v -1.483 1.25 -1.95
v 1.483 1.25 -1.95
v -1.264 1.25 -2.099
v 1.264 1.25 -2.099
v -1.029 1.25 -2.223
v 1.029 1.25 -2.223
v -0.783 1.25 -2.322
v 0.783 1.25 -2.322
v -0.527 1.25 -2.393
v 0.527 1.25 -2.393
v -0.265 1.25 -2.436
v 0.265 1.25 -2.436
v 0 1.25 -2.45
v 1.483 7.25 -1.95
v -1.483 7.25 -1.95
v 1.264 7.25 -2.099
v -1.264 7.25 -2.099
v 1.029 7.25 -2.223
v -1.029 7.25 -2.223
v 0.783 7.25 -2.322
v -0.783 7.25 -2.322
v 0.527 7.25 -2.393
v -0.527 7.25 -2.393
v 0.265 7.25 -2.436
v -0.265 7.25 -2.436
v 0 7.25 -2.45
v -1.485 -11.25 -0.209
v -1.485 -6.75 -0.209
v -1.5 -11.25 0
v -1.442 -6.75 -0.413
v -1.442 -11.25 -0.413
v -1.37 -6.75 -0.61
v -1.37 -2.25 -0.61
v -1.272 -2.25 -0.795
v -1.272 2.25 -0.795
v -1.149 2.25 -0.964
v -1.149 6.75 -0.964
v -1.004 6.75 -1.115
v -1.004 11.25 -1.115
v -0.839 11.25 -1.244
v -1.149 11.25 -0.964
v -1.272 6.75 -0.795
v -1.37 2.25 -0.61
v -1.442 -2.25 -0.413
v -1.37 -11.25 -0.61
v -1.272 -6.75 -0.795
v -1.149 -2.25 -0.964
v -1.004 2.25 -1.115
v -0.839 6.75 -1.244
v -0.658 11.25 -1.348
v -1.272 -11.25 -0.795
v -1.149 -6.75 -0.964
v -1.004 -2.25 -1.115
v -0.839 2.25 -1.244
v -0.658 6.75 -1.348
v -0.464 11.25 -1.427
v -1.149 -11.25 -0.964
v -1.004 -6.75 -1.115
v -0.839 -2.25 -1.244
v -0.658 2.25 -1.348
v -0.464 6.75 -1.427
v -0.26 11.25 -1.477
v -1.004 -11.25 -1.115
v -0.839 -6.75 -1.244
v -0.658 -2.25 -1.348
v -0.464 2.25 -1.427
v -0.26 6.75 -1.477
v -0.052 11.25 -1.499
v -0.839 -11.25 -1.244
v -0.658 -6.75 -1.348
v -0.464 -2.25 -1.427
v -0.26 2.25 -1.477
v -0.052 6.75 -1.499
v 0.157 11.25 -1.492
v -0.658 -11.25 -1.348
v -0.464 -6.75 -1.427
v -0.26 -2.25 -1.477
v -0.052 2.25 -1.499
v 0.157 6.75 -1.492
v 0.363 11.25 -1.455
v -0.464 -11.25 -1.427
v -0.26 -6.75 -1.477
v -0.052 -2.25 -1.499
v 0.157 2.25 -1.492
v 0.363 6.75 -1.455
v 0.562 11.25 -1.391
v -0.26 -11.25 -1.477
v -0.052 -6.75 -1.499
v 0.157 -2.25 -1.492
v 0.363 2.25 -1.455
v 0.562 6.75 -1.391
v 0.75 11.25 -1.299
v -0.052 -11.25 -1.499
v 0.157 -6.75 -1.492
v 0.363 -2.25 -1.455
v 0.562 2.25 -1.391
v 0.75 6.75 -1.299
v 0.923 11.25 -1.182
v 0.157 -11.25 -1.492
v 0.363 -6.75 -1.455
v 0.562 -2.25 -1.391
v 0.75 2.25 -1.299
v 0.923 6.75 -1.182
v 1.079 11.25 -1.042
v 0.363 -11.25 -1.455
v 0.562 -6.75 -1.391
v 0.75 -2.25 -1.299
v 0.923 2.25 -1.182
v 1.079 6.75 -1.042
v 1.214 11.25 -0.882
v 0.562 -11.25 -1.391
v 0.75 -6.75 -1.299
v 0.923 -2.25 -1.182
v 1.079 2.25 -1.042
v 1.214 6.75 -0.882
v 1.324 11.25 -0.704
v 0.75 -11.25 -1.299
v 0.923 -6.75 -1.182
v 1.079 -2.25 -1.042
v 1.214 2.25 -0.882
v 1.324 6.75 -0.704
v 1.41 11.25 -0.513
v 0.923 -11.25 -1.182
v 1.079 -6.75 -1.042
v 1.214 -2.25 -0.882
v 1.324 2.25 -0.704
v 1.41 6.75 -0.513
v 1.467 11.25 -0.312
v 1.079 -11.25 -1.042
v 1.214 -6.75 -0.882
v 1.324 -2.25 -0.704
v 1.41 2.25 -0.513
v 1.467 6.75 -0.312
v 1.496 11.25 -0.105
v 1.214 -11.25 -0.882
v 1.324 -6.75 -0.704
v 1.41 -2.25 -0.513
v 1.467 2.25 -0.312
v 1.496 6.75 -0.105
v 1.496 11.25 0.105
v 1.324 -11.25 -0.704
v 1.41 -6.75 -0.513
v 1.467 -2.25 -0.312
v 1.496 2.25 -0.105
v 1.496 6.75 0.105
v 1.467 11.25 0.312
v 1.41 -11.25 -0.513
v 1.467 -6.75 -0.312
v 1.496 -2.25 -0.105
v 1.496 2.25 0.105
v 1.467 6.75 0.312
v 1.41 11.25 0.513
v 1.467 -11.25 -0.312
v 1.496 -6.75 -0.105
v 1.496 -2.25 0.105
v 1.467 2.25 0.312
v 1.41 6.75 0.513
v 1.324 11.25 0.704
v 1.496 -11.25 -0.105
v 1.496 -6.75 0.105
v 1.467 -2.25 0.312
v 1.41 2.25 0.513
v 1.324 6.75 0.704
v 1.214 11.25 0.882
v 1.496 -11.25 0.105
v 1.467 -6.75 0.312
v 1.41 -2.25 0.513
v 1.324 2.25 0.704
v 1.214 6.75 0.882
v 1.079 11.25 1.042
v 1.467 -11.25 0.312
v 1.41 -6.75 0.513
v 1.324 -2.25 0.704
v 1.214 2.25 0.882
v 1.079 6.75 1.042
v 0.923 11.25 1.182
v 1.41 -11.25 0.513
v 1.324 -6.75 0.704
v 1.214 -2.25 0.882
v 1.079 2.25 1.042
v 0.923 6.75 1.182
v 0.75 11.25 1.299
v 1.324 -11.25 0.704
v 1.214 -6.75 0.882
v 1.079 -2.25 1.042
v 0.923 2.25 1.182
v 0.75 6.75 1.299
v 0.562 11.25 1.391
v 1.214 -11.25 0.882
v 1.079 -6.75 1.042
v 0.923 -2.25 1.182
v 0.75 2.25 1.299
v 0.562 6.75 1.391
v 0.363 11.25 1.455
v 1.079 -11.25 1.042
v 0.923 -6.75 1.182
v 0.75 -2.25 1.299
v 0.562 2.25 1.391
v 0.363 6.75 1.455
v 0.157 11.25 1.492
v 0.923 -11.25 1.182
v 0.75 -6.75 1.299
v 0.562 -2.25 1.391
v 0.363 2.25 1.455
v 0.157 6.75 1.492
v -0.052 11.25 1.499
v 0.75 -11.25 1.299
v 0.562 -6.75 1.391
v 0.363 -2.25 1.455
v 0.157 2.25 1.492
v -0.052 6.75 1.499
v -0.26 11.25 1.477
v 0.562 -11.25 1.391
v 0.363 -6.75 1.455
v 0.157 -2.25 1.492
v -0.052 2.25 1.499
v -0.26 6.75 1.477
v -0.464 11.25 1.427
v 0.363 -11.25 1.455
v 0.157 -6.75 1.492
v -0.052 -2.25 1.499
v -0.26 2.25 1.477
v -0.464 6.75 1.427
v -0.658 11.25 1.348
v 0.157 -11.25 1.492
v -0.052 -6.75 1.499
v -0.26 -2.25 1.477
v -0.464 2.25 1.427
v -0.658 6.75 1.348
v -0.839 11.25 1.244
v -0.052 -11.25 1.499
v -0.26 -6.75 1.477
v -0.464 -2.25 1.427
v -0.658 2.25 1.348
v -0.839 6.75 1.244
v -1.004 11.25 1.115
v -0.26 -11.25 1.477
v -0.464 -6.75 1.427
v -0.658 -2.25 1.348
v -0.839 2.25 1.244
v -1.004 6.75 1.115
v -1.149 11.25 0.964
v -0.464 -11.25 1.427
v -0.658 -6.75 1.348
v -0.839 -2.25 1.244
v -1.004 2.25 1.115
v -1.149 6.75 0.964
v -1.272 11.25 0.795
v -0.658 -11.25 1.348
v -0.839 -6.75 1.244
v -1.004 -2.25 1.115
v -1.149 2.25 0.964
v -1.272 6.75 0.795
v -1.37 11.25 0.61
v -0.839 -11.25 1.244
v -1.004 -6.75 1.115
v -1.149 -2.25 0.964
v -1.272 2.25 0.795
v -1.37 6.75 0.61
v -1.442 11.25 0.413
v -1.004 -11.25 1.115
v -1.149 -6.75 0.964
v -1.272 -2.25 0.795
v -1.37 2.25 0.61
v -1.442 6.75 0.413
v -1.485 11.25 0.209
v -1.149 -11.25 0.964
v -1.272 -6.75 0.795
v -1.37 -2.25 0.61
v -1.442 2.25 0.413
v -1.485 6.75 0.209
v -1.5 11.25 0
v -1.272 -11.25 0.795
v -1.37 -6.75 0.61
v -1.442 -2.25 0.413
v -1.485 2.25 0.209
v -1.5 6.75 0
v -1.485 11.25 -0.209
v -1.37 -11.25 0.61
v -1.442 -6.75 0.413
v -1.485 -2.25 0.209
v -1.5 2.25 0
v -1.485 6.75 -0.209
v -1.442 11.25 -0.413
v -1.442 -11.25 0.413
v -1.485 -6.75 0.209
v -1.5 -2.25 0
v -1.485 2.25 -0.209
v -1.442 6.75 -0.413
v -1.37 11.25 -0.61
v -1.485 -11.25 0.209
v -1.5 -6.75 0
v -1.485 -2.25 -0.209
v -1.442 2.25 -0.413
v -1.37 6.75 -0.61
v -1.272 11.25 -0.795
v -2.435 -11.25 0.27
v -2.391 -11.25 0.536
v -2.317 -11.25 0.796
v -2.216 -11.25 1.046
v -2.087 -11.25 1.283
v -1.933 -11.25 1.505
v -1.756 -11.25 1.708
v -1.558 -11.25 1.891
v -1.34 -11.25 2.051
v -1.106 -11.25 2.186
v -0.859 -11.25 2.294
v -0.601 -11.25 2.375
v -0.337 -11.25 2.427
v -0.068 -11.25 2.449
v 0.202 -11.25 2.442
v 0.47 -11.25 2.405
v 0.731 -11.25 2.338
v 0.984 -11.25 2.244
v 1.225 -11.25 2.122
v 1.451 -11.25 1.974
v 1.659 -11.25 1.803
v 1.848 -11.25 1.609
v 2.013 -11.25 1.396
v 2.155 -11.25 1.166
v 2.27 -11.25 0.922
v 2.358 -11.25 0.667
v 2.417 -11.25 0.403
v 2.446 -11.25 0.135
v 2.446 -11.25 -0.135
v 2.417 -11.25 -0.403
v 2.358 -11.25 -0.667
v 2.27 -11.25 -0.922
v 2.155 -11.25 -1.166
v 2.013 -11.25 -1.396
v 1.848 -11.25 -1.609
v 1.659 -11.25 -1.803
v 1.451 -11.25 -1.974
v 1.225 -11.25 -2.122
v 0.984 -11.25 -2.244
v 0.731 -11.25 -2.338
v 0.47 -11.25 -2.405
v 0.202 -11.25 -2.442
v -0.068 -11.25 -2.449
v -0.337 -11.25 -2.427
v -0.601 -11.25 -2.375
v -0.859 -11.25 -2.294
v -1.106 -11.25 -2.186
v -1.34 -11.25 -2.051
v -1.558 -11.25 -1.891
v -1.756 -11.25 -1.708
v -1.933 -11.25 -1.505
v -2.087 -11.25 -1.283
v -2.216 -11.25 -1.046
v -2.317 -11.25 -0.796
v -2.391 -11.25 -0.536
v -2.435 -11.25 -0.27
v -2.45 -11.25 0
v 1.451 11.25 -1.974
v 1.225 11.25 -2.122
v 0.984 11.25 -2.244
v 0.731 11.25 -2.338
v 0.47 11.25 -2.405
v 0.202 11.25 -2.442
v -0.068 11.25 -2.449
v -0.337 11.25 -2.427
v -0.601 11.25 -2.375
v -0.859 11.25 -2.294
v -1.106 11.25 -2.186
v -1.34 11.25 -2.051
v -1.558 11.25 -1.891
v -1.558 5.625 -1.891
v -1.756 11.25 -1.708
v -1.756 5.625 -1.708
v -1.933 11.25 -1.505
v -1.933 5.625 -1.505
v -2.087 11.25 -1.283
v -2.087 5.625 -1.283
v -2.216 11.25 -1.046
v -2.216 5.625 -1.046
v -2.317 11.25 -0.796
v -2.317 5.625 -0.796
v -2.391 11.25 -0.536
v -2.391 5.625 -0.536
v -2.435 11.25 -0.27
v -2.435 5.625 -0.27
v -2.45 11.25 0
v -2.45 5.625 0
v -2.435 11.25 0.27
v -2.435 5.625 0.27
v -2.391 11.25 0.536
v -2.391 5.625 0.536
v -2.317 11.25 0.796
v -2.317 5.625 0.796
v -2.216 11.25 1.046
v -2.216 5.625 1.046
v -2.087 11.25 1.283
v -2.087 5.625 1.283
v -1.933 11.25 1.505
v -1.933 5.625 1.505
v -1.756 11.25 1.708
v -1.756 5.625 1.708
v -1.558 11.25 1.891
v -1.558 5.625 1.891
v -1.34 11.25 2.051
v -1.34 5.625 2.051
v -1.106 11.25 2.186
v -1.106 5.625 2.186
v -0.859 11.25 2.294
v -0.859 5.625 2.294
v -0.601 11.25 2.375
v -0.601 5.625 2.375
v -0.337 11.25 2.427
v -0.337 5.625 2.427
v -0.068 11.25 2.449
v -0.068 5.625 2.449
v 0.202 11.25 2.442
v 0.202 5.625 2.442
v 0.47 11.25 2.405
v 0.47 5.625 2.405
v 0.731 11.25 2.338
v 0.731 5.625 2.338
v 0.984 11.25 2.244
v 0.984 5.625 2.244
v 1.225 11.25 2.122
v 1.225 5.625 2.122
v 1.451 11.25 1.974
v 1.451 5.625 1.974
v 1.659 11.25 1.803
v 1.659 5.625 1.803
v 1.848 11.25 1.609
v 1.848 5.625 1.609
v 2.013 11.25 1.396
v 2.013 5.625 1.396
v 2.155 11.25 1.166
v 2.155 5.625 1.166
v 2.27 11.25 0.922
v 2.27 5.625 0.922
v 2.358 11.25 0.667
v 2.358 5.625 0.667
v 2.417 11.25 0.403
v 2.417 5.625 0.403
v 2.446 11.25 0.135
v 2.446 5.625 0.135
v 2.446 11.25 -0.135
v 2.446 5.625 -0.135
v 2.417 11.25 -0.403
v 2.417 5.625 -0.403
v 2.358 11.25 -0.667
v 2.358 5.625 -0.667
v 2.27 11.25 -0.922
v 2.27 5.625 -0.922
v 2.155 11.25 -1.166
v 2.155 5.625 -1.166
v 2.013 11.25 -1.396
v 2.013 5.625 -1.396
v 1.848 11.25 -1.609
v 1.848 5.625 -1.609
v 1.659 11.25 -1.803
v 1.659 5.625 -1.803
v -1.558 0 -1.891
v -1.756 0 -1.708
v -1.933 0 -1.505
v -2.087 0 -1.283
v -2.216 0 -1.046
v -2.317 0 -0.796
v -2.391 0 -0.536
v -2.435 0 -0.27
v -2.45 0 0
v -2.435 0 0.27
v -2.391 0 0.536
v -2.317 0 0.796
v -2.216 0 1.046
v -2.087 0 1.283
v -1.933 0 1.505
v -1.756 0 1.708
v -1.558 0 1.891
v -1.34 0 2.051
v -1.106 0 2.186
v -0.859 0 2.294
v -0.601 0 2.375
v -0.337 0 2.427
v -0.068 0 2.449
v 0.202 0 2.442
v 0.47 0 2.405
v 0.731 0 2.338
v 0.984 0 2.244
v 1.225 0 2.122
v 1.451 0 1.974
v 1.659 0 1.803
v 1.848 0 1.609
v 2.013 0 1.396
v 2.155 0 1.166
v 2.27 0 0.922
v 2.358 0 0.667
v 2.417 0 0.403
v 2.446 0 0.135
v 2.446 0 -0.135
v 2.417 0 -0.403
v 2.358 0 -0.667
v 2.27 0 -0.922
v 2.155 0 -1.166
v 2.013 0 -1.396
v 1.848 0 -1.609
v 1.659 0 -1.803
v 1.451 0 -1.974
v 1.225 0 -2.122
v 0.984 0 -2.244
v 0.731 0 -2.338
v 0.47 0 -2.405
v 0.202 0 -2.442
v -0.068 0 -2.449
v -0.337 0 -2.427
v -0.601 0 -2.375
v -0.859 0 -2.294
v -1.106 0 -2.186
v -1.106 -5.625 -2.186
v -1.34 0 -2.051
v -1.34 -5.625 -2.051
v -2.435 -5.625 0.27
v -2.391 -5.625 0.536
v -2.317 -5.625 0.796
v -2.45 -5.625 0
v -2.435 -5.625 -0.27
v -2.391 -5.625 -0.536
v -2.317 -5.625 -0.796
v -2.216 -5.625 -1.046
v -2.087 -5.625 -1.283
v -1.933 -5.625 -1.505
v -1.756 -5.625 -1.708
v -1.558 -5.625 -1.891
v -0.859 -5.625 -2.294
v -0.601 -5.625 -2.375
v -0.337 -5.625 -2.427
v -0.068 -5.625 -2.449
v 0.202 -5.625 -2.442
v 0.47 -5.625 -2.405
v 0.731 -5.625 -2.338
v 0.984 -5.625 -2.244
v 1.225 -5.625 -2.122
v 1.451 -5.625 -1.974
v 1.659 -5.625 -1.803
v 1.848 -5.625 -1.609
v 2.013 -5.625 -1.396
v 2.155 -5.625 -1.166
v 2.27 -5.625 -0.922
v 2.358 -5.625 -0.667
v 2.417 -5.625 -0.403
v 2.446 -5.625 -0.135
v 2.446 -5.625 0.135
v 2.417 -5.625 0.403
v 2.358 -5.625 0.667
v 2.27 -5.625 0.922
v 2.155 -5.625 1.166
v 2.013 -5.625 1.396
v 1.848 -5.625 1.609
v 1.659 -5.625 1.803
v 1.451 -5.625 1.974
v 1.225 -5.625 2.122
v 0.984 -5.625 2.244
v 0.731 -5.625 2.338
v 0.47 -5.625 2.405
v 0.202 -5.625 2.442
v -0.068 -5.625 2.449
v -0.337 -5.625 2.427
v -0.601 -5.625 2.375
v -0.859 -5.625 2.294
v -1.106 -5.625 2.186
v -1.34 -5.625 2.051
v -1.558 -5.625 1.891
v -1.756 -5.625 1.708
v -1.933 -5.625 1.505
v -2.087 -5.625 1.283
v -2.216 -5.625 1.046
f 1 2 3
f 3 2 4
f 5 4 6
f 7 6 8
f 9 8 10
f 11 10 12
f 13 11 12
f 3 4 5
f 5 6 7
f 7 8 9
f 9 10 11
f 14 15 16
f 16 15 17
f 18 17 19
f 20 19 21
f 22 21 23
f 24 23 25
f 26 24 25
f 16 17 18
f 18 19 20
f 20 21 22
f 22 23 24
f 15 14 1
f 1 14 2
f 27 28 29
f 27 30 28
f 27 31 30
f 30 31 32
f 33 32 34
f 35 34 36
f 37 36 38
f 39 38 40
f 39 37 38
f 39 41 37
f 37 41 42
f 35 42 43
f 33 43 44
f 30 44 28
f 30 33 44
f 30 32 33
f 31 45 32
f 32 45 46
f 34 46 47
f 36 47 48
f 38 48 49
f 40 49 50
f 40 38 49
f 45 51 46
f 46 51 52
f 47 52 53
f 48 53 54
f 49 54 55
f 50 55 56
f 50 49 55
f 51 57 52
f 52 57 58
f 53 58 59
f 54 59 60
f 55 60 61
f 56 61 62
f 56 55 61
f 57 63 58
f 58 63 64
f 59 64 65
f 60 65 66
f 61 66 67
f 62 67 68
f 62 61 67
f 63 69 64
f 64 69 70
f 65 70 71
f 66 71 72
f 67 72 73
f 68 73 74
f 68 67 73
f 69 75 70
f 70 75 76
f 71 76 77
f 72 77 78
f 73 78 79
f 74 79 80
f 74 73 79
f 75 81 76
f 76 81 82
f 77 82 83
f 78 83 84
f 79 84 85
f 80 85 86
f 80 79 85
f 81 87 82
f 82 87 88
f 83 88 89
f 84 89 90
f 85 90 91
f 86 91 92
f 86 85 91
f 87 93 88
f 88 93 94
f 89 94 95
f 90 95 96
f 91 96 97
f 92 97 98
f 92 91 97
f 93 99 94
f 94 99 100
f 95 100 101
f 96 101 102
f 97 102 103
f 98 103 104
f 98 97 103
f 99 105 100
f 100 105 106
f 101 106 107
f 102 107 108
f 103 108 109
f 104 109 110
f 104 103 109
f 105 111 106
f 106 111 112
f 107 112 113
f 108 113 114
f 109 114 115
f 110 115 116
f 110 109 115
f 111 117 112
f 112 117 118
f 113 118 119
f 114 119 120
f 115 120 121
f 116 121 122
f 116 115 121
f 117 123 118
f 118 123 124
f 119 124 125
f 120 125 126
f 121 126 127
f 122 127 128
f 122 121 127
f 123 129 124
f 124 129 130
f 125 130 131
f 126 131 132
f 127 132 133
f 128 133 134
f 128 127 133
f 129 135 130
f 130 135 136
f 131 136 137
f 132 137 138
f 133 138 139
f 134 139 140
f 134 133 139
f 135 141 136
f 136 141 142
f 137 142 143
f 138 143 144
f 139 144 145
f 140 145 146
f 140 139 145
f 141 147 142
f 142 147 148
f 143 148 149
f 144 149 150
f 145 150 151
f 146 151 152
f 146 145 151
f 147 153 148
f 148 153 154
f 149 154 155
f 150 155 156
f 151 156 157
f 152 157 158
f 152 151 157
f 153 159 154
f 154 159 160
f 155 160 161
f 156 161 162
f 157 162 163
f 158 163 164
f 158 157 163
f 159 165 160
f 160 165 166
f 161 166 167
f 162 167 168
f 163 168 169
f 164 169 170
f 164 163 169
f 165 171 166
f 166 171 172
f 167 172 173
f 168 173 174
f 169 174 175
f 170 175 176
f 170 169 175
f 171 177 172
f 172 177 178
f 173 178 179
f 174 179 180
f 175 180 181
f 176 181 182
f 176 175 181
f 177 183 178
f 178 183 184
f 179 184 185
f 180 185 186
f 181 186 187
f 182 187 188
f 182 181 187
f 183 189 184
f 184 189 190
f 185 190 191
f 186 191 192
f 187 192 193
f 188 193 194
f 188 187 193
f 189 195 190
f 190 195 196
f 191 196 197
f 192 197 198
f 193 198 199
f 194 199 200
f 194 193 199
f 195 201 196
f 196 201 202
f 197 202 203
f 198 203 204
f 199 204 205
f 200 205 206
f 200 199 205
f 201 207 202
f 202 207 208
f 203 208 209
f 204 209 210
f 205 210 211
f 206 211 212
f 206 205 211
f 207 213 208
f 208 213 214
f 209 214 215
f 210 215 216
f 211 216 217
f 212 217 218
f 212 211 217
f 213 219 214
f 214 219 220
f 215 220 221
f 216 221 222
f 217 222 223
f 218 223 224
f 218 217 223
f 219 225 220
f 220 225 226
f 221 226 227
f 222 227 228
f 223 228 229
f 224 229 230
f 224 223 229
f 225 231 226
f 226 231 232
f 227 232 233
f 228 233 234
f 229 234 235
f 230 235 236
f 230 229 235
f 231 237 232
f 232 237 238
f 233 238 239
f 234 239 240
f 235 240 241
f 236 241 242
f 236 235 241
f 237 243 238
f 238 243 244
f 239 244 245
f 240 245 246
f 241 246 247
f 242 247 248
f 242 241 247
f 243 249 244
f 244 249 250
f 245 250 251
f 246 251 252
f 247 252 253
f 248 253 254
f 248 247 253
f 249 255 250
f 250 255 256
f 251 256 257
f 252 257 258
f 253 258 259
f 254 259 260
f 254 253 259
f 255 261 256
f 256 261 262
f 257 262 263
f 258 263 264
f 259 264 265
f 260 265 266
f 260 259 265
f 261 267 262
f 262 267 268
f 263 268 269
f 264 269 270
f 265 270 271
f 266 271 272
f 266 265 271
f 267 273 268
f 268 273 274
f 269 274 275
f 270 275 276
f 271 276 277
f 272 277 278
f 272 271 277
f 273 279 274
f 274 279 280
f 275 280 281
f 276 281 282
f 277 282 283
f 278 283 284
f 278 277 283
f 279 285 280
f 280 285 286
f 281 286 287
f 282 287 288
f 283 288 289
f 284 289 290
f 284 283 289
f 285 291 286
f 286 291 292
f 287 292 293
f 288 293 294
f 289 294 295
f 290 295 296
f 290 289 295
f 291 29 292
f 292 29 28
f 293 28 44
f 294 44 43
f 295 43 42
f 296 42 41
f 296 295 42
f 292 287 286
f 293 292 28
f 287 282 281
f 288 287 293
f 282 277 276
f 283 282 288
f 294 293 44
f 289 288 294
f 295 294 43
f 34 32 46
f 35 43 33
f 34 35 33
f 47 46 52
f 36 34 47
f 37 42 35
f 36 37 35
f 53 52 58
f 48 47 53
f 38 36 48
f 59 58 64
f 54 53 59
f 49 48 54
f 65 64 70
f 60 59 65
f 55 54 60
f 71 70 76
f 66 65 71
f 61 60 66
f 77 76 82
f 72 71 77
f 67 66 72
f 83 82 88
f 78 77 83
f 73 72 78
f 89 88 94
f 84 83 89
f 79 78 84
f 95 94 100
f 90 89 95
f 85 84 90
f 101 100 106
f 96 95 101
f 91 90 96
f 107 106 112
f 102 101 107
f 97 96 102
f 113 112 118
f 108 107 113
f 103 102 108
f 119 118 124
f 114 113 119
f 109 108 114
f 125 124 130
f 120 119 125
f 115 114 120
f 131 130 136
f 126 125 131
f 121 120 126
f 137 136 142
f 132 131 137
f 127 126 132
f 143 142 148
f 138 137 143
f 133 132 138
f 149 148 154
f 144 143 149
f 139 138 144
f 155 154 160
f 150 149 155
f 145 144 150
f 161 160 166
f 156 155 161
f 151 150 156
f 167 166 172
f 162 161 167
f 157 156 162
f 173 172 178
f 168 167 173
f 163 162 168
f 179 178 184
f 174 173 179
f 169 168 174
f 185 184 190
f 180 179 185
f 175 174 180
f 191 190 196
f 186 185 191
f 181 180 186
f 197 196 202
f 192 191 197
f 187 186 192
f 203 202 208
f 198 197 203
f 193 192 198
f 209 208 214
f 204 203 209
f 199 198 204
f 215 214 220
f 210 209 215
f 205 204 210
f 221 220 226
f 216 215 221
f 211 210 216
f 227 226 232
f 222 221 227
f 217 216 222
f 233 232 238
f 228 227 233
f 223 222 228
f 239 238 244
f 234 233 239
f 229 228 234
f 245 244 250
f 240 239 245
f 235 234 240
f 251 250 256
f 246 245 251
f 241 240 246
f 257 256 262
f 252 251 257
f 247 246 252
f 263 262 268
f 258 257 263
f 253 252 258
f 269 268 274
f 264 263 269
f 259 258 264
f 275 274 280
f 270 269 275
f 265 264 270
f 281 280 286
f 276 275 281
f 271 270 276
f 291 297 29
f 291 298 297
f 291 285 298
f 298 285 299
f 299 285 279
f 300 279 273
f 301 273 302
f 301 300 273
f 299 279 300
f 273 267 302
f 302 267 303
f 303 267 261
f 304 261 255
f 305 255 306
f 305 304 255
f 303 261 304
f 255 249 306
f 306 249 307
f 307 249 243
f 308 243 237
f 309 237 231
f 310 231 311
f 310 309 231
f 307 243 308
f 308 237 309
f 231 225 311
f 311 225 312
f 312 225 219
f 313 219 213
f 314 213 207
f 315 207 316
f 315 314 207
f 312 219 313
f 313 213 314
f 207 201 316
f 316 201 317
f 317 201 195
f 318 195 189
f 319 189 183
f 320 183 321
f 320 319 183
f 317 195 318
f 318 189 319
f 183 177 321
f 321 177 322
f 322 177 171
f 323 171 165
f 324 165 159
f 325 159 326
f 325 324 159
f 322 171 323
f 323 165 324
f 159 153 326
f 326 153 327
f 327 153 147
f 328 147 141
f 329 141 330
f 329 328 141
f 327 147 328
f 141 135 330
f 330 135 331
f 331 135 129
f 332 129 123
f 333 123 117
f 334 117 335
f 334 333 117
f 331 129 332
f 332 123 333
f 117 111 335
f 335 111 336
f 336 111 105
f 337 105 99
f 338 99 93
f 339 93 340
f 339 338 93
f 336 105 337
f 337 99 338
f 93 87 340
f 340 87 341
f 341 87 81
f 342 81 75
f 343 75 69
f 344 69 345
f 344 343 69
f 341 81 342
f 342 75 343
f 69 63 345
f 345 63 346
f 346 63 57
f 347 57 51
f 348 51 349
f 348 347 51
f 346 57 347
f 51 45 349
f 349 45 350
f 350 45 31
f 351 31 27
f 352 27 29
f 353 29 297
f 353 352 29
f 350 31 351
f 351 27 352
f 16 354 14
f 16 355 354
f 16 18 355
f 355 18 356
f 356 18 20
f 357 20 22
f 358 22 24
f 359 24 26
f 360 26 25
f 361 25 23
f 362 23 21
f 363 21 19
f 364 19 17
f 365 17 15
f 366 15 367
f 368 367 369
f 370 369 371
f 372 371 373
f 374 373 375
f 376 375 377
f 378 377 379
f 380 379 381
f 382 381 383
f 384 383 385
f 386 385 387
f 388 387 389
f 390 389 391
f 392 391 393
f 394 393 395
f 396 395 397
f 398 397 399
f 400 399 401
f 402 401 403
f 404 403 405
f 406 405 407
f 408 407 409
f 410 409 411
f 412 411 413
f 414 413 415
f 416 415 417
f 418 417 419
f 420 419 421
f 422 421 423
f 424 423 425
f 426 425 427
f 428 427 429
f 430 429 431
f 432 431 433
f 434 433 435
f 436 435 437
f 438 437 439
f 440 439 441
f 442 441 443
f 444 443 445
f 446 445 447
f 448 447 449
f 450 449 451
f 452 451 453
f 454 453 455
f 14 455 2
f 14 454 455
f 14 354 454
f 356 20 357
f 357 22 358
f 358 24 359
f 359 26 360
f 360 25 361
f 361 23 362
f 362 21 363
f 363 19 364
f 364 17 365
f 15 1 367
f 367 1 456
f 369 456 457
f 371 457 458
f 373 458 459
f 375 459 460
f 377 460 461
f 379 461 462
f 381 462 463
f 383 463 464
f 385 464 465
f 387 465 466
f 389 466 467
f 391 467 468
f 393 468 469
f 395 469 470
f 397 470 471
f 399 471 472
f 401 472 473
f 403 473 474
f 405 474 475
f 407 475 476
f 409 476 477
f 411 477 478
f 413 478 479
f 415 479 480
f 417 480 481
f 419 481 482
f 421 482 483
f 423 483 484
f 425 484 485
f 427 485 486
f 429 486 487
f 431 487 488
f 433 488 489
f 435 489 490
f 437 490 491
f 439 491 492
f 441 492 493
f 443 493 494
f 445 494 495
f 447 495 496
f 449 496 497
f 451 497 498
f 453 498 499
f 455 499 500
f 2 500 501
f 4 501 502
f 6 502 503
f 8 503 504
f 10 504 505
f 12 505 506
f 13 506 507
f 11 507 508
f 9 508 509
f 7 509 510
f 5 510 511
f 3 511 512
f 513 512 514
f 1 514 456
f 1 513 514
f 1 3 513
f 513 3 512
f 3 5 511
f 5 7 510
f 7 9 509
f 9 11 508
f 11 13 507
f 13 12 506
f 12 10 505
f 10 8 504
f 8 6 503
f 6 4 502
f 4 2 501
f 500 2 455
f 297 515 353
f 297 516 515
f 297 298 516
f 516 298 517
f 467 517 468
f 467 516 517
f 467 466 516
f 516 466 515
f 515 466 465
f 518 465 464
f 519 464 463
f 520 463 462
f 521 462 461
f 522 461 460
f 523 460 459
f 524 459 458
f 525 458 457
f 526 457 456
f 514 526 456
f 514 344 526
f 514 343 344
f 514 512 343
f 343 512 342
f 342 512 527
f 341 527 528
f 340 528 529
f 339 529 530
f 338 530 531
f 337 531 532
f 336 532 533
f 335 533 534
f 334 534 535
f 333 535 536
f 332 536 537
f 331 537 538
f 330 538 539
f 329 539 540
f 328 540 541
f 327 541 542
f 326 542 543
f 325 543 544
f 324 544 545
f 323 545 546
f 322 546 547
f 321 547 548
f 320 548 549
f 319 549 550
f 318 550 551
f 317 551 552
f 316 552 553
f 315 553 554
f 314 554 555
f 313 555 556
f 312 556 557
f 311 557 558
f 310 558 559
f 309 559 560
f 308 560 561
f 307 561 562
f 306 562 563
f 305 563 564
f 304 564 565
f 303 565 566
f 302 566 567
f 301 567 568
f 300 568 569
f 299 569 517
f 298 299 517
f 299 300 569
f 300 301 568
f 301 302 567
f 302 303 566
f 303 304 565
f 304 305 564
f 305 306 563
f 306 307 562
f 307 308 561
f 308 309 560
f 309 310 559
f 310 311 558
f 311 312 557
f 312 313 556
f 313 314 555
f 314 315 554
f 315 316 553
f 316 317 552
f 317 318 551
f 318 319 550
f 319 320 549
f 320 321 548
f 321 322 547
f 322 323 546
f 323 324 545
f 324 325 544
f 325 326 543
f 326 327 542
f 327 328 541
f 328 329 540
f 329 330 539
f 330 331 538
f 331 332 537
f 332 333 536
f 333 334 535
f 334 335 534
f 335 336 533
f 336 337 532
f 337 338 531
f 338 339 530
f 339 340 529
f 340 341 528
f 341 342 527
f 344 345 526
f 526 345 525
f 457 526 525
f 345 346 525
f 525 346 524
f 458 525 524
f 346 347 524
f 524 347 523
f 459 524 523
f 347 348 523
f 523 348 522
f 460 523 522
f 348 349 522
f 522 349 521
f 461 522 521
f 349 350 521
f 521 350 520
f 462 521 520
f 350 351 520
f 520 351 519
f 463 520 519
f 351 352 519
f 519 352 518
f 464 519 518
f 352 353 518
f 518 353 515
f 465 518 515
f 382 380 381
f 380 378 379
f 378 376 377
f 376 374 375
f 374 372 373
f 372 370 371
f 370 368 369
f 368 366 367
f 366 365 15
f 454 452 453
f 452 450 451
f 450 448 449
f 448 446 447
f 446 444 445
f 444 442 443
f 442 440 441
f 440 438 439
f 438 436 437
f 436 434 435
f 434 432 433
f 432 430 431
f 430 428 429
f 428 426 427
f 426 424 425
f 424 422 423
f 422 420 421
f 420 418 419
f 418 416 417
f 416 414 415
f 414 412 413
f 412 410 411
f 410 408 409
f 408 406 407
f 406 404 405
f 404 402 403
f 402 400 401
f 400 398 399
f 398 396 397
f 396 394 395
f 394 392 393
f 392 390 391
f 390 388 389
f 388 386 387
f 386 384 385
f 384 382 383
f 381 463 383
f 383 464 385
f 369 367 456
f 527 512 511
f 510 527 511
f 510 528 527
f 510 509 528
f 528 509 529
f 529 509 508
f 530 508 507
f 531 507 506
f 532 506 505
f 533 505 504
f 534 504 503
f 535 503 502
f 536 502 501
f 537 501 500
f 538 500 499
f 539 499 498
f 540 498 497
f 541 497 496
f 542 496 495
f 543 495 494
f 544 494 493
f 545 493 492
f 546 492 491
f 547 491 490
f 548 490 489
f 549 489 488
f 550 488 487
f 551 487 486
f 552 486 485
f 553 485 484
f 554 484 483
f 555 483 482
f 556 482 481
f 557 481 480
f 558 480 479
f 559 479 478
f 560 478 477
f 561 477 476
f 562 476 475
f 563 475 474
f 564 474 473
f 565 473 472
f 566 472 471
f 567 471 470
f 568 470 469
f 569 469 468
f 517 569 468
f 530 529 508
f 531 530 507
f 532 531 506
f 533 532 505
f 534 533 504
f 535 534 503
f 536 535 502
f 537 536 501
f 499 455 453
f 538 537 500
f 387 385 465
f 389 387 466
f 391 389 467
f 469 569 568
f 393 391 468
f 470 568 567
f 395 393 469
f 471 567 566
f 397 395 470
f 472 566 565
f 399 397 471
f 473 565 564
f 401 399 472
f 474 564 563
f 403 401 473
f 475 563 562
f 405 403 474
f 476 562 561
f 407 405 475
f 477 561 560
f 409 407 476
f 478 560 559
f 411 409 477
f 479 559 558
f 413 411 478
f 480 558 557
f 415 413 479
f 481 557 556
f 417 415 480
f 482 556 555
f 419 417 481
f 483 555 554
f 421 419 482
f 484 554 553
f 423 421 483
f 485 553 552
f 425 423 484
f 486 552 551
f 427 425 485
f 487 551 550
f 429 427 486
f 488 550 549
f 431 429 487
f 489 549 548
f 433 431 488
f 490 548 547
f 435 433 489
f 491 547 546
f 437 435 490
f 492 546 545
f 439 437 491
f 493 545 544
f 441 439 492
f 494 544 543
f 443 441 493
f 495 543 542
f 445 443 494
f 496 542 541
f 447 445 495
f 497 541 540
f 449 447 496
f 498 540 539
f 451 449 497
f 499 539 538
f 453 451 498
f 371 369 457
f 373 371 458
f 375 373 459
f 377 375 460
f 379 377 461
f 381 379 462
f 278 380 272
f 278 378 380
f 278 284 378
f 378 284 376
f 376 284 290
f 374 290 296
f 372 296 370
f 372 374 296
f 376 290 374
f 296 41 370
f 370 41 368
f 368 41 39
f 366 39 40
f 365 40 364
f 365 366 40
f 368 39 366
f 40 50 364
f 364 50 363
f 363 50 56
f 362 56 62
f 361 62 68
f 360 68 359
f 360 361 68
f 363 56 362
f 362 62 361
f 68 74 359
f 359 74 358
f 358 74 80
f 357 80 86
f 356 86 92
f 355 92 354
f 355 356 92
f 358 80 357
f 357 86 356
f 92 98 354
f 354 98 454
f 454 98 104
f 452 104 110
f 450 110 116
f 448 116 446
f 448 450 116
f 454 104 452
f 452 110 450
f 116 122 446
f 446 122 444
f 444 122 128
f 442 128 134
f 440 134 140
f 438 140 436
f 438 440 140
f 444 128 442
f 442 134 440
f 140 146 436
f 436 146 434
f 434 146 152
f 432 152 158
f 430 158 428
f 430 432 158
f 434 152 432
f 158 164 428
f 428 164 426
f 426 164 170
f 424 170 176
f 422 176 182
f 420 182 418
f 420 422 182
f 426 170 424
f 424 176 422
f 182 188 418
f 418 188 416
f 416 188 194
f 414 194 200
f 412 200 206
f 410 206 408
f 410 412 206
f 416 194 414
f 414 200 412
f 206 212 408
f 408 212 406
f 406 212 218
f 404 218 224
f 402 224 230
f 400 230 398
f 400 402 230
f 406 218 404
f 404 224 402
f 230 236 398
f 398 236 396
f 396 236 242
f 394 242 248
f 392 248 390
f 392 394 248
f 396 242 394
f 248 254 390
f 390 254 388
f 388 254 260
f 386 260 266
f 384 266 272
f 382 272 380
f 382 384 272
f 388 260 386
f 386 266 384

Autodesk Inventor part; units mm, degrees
ref_plane "YZ Plane" through (0, 0, 0) normal (1, 0, 0) x (0, 1, 0)
ref_plane "XZ Plane" through (0, 0, 0) normal (0, 1, 0) x (-1, 0, 0)
sketch "Sketch1" plane through (0, 0, 0) normal (0, 1, 0) x (-1, 0, 0)
  circle A0 centre (0, 0) radius 2.45
  circle A1 centre (0, 0) radius 1.5
  dimension "d0" = 4.9
  dimension "d1" = 3
extrude "Extrusion1" add sketch "Sketch1" along normal mid plane 22.5
ref_plane "Work Plane1" through (0, 0, -2.45) normal (0, 0, 1) x (1, 0, 0)
sketch "Sketch2" plane through (0, 0, -2.45) normal (0, 0, 1) x (1, 0, 0)
  line L0 (2.5, 7.25) -> (-2.5, 7.25)
  line L1 (-2.5, 7.25) -> (-2.5, 1.25)
  line L2 (-2.5, 1.25) -> (2.5, 1.25)
  line L3 (2.5, 1.25) -> (2.5, 7.25)
  line L4 (2.45, 11.25) -> (-2.45, 11.25) projected
  point P0 (0, 0)
  point P1 (0, 7.25)
  dimension "d4" = 6
  dimension "d6" = 4
  dimension "d7" = 5
extrude "Extrusion2" cut sketch "Sketch2" along normal blind 0.5
properties part number "PulleyShaft"
